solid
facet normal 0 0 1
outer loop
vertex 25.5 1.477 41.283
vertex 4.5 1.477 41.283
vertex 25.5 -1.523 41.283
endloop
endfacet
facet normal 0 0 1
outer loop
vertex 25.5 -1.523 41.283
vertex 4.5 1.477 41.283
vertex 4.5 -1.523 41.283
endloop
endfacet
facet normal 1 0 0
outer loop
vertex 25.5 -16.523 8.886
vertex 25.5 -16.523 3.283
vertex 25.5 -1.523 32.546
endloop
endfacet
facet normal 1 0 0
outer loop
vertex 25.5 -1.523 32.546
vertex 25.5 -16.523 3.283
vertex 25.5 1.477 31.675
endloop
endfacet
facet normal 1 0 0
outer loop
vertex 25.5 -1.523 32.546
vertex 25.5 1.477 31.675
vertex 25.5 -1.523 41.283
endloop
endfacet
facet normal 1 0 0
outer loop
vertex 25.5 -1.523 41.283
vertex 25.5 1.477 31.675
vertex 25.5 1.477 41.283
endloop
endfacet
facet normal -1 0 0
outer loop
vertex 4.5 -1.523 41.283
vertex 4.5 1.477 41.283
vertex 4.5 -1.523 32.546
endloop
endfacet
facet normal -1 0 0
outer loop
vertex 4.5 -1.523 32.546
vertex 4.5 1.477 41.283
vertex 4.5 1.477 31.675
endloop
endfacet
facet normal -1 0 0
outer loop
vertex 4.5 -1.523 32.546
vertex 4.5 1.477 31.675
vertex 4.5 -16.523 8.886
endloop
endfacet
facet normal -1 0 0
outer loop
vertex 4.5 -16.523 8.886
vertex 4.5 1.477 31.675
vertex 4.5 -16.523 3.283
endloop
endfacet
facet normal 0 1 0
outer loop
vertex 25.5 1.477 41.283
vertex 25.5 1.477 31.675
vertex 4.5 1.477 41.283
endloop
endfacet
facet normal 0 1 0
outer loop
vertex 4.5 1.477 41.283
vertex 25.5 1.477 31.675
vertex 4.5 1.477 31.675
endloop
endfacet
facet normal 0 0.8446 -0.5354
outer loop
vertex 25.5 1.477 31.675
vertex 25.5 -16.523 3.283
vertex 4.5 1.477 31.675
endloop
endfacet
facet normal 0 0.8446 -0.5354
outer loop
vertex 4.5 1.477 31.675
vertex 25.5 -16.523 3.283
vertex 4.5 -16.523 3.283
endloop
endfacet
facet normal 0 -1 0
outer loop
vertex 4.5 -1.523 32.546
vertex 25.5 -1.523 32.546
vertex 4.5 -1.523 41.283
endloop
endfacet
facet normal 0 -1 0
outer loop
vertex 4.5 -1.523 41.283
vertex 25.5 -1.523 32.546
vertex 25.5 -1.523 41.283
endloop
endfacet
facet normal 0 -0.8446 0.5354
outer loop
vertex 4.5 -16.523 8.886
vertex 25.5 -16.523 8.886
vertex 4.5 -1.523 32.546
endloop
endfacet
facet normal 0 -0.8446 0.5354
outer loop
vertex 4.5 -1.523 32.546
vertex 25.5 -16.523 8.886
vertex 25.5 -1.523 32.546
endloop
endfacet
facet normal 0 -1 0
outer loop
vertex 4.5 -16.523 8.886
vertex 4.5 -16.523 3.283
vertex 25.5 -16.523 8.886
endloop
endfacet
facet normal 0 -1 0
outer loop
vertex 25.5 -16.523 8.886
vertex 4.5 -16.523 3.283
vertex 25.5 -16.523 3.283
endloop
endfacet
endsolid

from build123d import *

# Parameters (mm, degrees)
CROQUIS2_W                 = 43
CROQUIS2_H                 = 30
SALIENTE_EXTRUIR1_DEPTH    = 30
CROQUIS3_W                 = 42.529407755
CROQUIS3_H                 = 25.558495791
CORTAR_EXTRUIR1_DEPTH      = 30
CORTAR_EXTRUIR2_START      = -7.5
CORTAR_EXTRUIR2_DEPTH      = 15
CORTAR_EXTRUIR4_DEPTH      = 4.5
CORTAR_EXTRUIR5_DEPTH      = 4.5
REDONDEO1_R                = 3
CROQUIS8_W                 = 15
CROQUIS8_H                 = 32.397186909
CORTAR_EXTRUIR6_DEPTH      = 4.5
CROQUIS9_W                 = 120.283196461
CROQUIS9_H                 = 78.810135234
CORTAR_EXTRUIR7_DEPTH      = 22.5
CORTAR_EXTRUIR9_DEPTH      = 22.5
CORTAR_EXTRUIR9_DEPTH_BACK = 29.5


with BuildPart() as part:
    # Croquis2 → Saliente-Extruir1 (new body)
    with BuildSketch(Plane(origin=(0, 0, 0), x_dir=(0, 0, -1), z_dir=(1, 0, 0))):
        with Locations((-19.783269962, -13.522813688)):
            Rectangle(CROQUIS2_W, CROQUIS2_H)
    extrude(amount=SALIENTE_EXTRUIR1_DEPTH)

    # Croquis3 → Cortar-Extruir1 (cut)
    with BuildSketch(Plane(origin=(30, 0, 0), x_dir=(0, 0, -1), z_dir=(1, 0, 0))):
        with Locations((-17.018566085, -31.302061584)):
            Rectangle(CROQUIS3_W, CROQUIS3_H)
        Polygon((-31.675073764, 1.477186312), (-3.283269962, -16.522813688), (1.716730038, -16.522813688), (1.716730038, 1.477186312), align=None)
    extrude(amount=-CORTAR_EXTRUIR1_DEPTH, mode=Mode.SUBTRACT)

    # Croquis4 → Cortar-Extruir2 (cut)
    with BuildSketch(Plane(origin=(30, 0, 0), x_dir=(0, 0, -1), z_dir=(1, 0, 0)).offset(CORTAR_EXTRUIR2_START)):
        Polygon((-41.283269962, -1.522813688), (-32.545919554, -1.522813688), (-8.886083053, -16.522813688), (-41.283269962, -16.522813688), align=None)
    extrude(amount=-CORTAR_EXTRUIR2_DEPTH, mode=Mode.SUBTRACT)

    # Croquis5 → Cortar-Extruir4 (cut)
    with BuildSketch(Plane(origin=(30, 0, 0), x_dir=(0, 0, -1), z_dir=(1, 0, 0))):
        Polygon((-3.283269962, -16.522813688), (-41.283269962, -16.522813688), (-41.283269962, 1.477186312), (-31.675073764, 1.477186312), align=None)
    extrude(amount=-CORTAR_EXTRUIR4_DEPTH, mode=Mode.SUBTRACT)

    # Croquis6 → Cortar-Extruir5 (cut)
    with BuildSketch(Plane.ZY):
        Polygon((3.283269962, -16.522813688), (41.283269962, -16.522813688), (41.283269962, 1.477186312), (31.675073764, 1.477186312), align=None)
    extrude(amount=-CORTAR_EXTRUIR5_DEPTH, mode=Mode.SUBTRACT)

    # Redondeo1
    redondeo1_edges = [part.edges().sort_by_distance(p)[0] for p in [
        (0, -17.522813688, -1.716730038),
        (30, -17.522813688, -1.716730038),
    ]]
    fillet(redondeo1_edges, radius=REDONDEO1_R)

    # Croquis8 → Cortar-Extruir6 (cut)
    with BuildSketch(Plane(origin=(0, -16.522813688, 0), x_dir=(1, 0, 0), z_dir=(0, 1, 0))):
        with Locations((15, -25.084676508)):
            Rectangle(CROQUIS8_W, CROQUIS8_H)
    extrude(amount=-CORTAR_EXTRUIR6_DEPTH, mode=Mode.SUBTRACT)

    # Croquis9 → Cortar-Extruir7 (cut)
    with BuildSketch(Plane.XZ.offset(18.522813688)):
        with Locations((17.6156444, 62.089659259)):
            Rectangle(CROQUIS9_W, CROQUIS9_H)
    extrude(amount=CORTAR_EXTRUIR7_DEPTH, mode=Mode.SUBTRACT)

    # Croquis10 → Cortar-Extruir9 (cut, two sides)
    with BuildSketch(Plane(origin=(25.5, 0, 0), x_dir=(0, 0, -1), z_dir=(1, 0, 0))) as cortar_extruir9_sk:
        Polygon((-41.283269962, -1.522813688), (-32.545919554, -1.522813688), (-8.886083053, -16.522813688), (1.716730038, -16.522813688), (18.108947867, -28.45757264), (-61.799912443, -25.241788427), align=None)
    extrude(amount=CORTAR_EXTRUIR9_DEPTH, mode=Mode.SUBTRACT)
    extrude(cortar_extruir9_sk.sketch, amount=-CORTAR_EXTRUIR9_DEPTH_BACK, mode=Mode.SUBTRACT)


solid = part.part
